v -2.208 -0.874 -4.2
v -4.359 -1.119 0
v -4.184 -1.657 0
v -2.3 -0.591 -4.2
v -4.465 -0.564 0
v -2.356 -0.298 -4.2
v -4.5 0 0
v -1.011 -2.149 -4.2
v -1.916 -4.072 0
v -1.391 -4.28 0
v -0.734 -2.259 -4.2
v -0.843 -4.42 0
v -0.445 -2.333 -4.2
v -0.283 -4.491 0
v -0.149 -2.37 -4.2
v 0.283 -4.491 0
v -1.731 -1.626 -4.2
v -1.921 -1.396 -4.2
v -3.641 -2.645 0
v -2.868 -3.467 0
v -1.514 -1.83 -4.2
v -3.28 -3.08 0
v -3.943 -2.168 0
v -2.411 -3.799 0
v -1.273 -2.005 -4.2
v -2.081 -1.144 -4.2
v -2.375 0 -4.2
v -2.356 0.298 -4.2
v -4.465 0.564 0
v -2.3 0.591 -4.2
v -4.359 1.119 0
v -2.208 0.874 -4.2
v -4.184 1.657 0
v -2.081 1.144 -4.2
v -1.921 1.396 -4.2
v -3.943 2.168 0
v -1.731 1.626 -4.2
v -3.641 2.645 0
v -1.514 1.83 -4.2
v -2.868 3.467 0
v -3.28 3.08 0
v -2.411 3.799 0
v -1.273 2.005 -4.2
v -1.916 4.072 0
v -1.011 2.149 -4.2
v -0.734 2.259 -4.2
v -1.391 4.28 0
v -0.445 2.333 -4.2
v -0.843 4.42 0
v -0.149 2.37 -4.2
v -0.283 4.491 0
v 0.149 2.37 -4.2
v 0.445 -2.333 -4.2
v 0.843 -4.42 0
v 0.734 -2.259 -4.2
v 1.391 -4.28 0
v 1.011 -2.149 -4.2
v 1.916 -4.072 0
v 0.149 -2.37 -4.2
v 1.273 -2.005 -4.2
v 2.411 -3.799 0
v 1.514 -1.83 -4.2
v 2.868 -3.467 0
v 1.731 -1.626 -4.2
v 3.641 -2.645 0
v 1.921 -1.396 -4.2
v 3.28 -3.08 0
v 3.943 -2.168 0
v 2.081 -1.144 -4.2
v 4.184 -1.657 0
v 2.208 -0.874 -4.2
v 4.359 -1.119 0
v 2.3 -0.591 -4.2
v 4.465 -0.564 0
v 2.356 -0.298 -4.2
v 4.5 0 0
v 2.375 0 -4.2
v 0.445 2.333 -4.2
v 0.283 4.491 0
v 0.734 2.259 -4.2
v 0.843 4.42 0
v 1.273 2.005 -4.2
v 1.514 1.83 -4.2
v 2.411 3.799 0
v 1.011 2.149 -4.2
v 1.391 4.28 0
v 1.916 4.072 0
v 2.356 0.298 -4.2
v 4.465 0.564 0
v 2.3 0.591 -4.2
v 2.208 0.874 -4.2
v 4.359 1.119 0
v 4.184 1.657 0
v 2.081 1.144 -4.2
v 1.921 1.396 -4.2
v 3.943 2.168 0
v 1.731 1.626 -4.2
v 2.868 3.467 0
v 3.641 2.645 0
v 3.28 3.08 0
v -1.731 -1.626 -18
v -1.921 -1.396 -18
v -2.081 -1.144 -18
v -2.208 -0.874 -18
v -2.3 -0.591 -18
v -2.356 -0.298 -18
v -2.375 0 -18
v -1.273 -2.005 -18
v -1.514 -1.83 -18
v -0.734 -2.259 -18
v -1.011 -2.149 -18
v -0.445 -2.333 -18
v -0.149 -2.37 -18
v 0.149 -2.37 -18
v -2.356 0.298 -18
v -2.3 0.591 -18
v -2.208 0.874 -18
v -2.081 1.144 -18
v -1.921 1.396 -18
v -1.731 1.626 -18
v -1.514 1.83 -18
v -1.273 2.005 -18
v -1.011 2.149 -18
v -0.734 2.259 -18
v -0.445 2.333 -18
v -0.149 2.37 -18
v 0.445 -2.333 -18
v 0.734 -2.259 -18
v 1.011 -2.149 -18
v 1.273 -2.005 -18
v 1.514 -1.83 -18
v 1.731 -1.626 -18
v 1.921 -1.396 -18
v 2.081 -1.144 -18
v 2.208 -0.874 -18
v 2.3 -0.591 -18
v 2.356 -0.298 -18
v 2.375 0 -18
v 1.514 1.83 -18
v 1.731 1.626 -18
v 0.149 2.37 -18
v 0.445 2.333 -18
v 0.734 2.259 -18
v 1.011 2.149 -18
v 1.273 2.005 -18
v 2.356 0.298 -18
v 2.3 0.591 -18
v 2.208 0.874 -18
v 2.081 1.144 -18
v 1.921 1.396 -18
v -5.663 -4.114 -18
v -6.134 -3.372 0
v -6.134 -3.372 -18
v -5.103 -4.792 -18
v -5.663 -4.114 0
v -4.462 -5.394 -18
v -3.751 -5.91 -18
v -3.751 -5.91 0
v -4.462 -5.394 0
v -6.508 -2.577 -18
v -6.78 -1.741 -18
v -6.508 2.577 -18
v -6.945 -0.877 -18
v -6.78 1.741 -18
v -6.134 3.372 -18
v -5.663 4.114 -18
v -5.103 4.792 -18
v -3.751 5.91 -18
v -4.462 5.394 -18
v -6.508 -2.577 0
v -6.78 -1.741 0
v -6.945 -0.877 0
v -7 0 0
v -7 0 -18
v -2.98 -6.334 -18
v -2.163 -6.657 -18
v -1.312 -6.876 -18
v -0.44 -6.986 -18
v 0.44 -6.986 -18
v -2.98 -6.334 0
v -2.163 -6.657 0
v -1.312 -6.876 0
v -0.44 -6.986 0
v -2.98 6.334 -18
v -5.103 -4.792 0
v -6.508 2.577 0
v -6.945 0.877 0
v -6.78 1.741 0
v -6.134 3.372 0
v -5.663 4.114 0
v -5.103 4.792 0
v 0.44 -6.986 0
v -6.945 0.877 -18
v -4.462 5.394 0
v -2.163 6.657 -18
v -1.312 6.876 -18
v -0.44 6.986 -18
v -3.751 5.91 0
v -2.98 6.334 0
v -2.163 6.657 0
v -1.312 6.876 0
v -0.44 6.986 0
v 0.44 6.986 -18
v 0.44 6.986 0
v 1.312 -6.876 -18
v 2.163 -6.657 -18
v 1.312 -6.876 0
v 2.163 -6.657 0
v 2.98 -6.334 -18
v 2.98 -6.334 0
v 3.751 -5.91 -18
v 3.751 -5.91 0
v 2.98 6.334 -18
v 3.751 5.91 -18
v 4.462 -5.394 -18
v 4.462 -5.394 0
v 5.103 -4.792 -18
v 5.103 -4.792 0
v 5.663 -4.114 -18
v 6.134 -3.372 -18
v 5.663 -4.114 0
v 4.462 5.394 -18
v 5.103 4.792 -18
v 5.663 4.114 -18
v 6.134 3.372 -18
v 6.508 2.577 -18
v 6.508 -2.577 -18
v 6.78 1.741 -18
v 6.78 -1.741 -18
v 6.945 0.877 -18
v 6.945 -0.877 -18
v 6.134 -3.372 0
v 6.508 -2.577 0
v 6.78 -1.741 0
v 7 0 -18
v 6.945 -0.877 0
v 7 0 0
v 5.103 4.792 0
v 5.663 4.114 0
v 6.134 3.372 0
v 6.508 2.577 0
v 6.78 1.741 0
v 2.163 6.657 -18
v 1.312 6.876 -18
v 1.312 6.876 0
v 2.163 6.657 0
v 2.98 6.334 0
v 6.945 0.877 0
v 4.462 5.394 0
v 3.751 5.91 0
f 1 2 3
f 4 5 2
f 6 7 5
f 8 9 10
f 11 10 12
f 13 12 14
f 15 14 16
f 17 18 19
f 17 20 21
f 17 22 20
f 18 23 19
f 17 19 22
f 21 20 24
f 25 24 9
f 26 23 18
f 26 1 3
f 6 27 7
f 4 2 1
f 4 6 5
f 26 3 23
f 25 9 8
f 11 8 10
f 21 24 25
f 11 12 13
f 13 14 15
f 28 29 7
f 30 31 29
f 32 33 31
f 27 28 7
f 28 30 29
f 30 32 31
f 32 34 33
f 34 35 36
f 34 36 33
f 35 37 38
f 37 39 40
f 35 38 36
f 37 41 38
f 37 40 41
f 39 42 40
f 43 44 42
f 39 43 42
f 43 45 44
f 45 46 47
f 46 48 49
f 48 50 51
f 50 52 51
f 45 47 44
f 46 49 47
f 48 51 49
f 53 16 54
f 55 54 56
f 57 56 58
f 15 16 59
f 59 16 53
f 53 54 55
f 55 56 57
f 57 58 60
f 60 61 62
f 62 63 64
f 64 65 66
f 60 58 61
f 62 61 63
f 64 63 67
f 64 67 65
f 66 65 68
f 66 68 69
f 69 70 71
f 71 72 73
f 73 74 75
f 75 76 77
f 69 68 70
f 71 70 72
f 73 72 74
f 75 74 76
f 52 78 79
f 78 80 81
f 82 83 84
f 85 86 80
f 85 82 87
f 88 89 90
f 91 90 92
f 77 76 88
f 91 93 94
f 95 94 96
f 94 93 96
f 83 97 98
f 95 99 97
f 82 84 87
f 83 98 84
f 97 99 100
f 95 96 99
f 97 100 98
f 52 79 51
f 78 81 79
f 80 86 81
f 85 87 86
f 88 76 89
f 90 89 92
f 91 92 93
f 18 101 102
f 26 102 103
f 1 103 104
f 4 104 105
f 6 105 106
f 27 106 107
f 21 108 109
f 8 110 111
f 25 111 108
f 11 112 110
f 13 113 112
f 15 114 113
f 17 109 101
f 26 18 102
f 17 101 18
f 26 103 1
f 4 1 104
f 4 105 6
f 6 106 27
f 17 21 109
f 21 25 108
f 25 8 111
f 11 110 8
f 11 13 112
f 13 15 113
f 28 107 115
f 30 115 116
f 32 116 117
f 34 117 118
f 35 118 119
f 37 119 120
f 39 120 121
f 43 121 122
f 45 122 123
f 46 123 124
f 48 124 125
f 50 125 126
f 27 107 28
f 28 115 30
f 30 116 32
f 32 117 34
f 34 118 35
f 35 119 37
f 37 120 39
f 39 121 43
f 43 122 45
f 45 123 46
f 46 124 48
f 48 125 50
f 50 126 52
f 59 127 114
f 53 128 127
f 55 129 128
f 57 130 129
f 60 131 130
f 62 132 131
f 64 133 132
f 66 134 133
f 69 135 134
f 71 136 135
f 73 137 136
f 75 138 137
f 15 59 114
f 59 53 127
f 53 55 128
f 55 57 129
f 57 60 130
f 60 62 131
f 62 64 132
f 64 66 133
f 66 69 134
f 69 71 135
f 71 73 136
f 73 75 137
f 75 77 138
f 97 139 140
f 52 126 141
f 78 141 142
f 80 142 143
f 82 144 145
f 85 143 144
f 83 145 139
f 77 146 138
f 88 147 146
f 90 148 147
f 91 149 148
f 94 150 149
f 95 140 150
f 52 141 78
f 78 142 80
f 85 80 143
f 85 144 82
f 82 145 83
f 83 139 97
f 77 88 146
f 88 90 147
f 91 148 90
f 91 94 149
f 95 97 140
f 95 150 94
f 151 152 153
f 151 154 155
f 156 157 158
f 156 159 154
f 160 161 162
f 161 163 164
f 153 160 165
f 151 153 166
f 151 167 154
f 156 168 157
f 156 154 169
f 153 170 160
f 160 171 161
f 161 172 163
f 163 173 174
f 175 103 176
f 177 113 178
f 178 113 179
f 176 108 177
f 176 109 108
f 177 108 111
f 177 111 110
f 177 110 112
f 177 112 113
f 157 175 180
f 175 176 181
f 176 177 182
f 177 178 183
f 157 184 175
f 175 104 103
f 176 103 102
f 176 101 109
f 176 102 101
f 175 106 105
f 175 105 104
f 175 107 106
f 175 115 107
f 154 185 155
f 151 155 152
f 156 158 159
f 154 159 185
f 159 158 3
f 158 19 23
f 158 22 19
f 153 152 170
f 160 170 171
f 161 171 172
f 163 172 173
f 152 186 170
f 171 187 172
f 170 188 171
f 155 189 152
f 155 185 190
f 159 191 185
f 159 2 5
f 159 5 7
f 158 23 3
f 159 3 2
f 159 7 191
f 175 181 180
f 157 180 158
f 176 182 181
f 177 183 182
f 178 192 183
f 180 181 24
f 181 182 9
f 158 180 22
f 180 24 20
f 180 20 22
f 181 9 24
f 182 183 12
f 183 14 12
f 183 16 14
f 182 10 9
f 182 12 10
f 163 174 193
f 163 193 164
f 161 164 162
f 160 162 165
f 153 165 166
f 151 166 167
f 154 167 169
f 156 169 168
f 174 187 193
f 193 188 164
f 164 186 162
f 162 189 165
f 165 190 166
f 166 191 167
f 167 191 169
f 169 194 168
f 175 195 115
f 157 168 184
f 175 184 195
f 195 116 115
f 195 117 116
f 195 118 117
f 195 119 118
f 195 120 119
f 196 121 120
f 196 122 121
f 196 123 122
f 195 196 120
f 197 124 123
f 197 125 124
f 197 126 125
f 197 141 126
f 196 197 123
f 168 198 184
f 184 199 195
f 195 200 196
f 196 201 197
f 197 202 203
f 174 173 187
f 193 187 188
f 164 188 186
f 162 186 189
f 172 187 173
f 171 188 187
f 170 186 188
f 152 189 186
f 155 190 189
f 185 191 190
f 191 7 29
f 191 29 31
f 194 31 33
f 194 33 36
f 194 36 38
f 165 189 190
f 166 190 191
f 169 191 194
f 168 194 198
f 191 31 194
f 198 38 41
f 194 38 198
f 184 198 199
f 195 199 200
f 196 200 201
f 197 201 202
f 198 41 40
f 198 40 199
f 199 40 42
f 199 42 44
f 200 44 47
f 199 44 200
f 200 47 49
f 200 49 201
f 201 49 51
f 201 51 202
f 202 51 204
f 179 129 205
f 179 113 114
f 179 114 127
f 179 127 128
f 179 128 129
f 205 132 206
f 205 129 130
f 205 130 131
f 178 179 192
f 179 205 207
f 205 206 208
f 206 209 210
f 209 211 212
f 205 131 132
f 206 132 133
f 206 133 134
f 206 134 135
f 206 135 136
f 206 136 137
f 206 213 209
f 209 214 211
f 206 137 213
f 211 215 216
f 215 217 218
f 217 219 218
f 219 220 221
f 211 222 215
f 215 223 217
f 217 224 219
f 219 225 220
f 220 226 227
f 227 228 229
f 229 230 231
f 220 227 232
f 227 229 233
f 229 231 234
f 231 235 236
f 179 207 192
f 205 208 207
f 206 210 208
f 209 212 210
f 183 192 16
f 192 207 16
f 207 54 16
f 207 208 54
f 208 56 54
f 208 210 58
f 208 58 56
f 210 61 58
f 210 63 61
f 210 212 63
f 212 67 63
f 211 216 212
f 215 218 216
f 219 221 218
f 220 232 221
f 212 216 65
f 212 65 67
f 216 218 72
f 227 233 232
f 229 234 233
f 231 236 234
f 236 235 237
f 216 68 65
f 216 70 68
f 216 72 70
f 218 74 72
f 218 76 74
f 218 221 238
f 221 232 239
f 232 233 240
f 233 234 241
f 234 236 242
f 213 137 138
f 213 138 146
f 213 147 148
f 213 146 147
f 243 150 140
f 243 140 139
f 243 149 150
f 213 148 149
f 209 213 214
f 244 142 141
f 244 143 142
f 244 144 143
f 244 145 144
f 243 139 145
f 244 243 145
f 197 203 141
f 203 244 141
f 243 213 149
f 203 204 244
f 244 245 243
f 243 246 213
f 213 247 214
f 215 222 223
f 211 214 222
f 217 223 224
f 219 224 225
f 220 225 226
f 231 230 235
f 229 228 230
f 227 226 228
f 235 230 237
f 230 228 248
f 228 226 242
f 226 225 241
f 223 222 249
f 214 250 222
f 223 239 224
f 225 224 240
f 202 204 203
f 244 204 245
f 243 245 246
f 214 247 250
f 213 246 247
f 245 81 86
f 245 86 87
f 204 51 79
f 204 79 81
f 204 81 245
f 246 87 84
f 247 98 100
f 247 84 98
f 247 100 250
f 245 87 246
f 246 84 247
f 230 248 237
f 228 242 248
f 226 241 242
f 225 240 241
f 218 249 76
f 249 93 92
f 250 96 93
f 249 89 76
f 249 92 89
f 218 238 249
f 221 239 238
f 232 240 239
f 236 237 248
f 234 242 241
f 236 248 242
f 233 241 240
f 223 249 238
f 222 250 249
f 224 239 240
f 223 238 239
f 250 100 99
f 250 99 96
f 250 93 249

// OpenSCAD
$fn = 50;

difference() {
	union() {
		translate(v = [0, 0, -18.0]) {
			cylinder(h = 18, r = 7.0);
		}
	}
	union() {
		translate(v = [0, 0, 0]) {
			rotate(a = [0, 0, 0]) {
				difference() {
					union() {
						translate(v = [0, 0, -21.0]) {
							cylinder(h = 21, r = 2.25);
						}
						translate(v = [0, 0, -4.2]) {
							cylinder(h = 4.2, r1 = 2.375, r2 = 4.5);
						}
						translate(v = [0, 0, -21.0]) {
							cylinder(h = 21, r = 2.375);
						}
						translate(v = [0, 0, -21.0]) {
							cylinder(h = 21, r = 2.25);
						}
					}
					union();
				}
			}
		}
	}
}
